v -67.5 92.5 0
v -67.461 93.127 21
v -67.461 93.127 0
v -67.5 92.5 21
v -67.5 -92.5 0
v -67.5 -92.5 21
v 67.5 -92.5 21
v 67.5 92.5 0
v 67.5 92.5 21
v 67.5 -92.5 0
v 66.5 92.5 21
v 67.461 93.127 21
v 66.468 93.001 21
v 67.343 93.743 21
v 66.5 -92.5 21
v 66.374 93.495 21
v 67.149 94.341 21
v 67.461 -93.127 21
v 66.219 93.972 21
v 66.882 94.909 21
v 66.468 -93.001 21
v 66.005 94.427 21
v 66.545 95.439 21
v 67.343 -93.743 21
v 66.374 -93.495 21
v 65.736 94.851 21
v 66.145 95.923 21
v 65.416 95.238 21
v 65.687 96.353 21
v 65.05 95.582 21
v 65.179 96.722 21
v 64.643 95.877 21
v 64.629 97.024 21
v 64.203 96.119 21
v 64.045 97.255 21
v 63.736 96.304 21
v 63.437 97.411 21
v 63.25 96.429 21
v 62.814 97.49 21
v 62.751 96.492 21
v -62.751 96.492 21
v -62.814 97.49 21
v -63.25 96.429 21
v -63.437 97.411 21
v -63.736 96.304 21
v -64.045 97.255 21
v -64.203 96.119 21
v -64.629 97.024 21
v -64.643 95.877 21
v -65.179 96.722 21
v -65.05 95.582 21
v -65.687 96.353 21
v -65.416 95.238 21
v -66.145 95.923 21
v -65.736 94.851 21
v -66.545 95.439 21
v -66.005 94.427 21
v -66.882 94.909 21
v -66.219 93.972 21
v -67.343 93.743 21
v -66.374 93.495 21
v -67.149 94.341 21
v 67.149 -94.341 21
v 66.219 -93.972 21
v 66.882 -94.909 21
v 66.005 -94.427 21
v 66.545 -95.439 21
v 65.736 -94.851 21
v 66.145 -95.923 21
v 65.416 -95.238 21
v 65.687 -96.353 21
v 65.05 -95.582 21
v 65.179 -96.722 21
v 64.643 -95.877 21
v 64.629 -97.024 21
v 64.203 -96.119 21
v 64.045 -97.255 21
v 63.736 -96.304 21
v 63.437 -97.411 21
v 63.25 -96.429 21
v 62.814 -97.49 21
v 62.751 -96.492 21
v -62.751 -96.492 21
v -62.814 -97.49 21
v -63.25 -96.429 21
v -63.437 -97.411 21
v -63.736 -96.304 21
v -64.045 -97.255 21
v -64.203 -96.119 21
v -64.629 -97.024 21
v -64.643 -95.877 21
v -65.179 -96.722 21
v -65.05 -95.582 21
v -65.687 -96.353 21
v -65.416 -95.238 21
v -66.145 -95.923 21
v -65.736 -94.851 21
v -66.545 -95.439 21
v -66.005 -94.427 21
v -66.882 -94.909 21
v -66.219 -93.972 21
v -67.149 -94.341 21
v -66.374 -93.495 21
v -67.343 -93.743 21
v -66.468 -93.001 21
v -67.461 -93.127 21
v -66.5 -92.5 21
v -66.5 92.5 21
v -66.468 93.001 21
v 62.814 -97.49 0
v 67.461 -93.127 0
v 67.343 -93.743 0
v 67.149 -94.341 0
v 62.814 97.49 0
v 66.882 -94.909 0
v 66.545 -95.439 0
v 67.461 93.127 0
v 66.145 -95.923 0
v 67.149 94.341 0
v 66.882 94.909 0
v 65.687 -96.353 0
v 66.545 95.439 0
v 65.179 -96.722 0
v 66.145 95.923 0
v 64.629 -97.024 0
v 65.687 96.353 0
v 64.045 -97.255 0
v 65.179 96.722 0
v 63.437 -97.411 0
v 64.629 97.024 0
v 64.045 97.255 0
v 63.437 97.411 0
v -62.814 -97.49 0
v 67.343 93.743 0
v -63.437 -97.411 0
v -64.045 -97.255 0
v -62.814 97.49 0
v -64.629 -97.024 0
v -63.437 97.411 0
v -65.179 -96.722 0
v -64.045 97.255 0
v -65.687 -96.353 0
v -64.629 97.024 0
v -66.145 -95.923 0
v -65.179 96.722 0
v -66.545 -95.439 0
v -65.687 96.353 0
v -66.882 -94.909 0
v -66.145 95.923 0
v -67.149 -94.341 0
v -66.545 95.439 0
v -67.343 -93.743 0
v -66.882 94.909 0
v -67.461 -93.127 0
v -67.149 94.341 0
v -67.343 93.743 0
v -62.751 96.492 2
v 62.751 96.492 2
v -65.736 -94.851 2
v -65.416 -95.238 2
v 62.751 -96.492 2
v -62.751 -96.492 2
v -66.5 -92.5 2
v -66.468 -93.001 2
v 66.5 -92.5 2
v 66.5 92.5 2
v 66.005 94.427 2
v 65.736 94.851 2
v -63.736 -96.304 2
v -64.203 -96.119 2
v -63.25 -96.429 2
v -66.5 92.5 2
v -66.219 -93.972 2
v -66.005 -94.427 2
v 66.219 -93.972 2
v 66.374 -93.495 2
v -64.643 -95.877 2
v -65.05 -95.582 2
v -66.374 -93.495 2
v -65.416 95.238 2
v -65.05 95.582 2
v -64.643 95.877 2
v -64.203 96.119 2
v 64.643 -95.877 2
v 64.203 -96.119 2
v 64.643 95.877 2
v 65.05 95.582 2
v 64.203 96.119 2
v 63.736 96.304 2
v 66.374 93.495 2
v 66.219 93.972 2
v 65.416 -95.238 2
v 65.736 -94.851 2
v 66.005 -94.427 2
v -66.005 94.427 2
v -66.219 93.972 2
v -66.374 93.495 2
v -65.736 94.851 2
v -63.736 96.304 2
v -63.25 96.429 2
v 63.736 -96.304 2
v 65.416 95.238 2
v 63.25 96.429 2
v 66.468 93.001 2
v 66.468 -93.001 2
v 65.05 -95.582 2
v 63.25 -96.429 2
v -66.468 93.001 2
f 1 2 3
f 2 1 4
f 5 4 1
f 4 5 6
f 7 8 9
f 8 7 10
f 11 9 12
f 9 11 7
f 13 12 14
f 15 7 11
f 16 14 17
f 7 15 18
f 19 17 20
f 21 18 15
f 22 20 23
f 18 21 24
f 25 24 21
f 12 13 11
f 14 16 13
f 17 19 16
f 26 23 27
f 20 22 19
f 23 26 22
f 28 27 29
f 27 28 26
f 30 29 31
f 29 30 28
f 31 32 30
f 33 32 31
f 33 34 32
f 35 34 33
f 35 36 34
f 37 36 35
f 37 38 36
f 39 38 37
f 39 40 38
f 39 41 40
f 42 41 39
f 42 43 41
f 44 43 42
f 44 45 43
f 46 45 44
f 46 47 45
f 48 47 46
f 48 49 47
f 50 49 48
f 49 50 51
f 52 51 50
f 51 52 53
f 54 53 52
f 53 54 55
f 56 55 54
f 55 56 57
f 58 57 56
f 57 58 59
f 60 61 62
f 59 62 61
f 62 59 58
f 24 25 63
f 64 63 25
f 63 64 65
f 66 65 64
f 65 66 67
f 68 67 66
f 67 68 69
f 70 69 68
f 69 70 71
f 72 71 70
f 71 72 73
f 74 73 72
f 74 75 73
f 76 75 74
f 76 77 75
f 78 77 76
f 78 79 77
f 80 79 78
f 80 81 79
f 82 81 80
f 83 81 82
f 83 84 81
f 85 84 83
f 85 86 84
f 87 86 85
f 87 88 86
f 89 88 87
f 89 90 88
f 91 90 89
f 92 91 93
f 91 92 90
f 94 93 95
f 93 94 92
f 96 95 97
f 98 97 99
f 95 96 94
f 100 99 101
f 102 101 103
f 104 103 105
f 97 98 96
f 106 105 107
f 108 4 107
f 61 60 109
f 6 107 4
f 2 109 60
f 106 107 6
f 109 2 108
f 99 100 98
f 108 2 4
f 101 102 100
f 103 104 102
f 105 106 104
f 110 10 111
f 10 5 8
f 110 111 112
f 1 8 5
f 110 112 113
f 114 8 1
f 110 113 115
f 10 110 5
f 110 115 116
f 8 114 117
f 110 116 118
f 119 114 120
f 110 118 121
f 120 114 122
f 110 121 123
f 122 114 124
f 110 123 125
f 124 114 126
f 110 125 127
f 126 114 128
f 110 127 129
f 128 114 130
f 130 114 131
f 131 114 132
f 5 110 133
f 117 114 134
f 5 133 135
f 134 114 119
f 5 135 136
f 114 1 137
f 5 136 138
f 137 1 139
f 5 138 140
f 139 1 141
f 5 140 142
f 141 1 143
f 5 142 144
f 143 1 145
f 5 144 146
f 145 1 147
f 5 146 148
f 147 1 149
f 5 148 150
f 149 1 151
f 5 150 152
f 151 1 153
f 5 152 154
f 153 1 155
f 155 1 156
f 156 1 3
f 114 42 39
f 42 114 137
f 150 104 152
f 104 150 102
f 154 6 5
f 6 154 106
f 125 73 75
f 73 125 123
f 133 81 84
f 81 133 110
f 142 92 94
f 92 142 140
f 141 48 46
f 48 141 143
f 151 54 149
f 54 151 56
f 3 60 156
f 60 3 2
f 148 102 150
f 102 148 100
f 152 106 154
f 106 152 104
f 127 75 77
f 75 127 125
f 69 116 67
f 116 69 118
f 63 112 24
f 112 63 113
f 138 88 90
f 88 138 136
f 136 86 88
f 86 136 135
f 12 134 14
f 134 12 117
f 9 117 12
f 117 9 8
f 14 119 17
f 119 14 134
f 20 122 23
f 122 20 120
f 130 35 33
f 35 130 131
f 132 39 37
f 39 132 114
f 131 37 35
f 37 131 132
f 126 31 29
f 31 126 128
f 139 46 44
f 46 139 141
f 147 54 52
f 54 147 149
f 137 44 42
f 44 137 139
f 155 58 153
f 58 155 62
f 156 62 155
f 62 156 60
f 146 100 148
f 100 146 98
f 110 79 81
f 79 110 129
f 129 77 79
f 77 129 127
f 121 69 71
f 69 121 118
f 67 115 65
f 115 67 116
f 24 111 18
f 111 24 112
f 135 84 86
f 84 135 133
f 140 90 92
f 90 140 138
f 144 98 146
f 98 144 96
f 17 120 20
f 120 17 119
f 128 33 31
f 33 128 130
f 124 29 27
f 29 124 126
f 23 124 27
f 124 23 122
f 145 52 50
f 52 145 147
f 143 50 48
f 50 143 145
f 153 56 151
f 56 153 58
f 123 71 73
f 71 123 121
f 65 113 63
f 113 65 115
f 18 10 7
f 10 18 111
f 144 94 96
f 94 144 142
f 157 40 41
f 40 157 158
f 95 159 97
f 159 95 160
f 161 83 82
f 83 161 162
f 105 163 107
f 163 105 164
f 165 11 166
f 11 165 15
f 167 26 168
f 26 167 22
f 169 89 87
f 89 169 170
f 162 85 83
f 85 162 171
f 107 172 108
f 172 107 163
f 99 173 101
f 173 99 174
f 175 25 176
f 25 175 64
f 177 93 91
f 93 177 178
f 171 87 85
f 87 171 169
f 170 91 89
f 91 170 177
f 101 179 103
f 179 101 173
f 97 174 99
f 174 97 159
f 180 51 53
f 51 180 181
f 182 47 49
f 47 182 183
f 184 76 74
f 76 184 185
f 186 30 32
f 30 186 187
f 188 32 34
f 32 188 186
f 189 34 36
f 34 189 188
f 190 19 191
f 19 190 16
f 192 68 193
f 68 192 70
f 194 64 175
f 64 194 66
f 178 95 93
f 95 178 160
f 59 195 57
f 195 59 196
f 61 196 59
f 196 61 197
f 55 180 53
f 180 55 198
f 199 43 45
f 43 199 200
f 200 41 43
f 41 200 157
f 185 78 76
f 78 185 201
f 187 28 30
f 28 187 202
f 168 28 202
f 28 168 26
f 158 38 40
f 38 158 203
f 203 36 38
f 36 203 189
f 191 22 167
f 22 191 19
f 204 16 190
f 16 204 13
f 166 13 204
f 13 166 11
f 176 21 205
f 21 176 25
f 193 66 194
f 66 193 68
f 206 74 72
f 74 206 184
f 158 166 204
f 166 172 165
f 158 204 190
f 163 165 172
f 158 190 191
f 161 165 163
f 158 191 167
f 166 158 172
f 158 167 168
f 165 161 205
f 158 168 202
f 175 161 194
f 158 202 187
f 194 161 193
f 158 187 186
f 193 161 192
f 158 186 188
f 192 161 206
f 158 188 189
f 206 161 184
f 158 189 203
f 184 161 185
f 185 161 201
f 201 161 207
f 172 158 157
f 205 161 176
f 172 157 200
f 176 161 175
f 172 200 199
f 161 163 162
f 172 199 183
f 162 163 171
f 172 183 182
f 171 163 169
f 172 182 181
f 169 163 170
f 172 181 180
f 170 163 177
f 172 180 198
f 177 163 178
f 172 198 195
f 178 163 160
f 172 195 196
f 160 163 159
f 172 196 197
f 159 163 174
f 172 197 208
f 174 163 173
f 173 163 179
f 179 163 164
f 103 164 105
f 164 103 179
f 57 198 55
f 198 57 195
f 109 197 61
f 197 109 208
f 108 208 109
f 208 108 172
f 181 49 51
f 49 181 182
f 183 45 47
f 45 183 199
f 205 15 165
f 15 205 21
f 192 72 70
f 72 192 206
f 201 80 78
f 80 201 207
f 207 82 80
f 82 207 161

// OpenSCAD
$fn = 50;


difference() {
	union() {
		hull() {
			translate(v = [-62.5000000000, 92.5000000000, 0]) {
				cylinder(h = 21, r = 5);
			}
			translate(v = [62.5000000000, 92.5000000000, 0]) {
				cylinder(h = 21, r = 5);
			}
			translate(v = [-62.5000000000, -92.5000000000, 0]) {
				cylinder(h = 21, r = 5);
			}
			translate(v = [62.5000000000, -92.5000000000, 0]) {
				cylinder(h = 21, r = 5);
			}
		}
	}
	union() {
		translate(v = [0, 0, 2]) {
			hull() {
				translate(v = [-62.5000000000, 92.5000000000, 0]) {
					cylinder(h = 19, r = 4);
				}
				translate(v = [62.5000000000, 92.5000000000, 0]) {
					cylinder(h = 19, r = 4);
				}
				translate(v = [-62.5000000000, -92.5000000000, 0]) {
					cylinder(h = 19, r = 4);
				}
				translate(v = [62.5000000000, -92.5000000000, 0]) {
					cylinder(h = 19, r = 4);
				}
			}
		}
	}
}
